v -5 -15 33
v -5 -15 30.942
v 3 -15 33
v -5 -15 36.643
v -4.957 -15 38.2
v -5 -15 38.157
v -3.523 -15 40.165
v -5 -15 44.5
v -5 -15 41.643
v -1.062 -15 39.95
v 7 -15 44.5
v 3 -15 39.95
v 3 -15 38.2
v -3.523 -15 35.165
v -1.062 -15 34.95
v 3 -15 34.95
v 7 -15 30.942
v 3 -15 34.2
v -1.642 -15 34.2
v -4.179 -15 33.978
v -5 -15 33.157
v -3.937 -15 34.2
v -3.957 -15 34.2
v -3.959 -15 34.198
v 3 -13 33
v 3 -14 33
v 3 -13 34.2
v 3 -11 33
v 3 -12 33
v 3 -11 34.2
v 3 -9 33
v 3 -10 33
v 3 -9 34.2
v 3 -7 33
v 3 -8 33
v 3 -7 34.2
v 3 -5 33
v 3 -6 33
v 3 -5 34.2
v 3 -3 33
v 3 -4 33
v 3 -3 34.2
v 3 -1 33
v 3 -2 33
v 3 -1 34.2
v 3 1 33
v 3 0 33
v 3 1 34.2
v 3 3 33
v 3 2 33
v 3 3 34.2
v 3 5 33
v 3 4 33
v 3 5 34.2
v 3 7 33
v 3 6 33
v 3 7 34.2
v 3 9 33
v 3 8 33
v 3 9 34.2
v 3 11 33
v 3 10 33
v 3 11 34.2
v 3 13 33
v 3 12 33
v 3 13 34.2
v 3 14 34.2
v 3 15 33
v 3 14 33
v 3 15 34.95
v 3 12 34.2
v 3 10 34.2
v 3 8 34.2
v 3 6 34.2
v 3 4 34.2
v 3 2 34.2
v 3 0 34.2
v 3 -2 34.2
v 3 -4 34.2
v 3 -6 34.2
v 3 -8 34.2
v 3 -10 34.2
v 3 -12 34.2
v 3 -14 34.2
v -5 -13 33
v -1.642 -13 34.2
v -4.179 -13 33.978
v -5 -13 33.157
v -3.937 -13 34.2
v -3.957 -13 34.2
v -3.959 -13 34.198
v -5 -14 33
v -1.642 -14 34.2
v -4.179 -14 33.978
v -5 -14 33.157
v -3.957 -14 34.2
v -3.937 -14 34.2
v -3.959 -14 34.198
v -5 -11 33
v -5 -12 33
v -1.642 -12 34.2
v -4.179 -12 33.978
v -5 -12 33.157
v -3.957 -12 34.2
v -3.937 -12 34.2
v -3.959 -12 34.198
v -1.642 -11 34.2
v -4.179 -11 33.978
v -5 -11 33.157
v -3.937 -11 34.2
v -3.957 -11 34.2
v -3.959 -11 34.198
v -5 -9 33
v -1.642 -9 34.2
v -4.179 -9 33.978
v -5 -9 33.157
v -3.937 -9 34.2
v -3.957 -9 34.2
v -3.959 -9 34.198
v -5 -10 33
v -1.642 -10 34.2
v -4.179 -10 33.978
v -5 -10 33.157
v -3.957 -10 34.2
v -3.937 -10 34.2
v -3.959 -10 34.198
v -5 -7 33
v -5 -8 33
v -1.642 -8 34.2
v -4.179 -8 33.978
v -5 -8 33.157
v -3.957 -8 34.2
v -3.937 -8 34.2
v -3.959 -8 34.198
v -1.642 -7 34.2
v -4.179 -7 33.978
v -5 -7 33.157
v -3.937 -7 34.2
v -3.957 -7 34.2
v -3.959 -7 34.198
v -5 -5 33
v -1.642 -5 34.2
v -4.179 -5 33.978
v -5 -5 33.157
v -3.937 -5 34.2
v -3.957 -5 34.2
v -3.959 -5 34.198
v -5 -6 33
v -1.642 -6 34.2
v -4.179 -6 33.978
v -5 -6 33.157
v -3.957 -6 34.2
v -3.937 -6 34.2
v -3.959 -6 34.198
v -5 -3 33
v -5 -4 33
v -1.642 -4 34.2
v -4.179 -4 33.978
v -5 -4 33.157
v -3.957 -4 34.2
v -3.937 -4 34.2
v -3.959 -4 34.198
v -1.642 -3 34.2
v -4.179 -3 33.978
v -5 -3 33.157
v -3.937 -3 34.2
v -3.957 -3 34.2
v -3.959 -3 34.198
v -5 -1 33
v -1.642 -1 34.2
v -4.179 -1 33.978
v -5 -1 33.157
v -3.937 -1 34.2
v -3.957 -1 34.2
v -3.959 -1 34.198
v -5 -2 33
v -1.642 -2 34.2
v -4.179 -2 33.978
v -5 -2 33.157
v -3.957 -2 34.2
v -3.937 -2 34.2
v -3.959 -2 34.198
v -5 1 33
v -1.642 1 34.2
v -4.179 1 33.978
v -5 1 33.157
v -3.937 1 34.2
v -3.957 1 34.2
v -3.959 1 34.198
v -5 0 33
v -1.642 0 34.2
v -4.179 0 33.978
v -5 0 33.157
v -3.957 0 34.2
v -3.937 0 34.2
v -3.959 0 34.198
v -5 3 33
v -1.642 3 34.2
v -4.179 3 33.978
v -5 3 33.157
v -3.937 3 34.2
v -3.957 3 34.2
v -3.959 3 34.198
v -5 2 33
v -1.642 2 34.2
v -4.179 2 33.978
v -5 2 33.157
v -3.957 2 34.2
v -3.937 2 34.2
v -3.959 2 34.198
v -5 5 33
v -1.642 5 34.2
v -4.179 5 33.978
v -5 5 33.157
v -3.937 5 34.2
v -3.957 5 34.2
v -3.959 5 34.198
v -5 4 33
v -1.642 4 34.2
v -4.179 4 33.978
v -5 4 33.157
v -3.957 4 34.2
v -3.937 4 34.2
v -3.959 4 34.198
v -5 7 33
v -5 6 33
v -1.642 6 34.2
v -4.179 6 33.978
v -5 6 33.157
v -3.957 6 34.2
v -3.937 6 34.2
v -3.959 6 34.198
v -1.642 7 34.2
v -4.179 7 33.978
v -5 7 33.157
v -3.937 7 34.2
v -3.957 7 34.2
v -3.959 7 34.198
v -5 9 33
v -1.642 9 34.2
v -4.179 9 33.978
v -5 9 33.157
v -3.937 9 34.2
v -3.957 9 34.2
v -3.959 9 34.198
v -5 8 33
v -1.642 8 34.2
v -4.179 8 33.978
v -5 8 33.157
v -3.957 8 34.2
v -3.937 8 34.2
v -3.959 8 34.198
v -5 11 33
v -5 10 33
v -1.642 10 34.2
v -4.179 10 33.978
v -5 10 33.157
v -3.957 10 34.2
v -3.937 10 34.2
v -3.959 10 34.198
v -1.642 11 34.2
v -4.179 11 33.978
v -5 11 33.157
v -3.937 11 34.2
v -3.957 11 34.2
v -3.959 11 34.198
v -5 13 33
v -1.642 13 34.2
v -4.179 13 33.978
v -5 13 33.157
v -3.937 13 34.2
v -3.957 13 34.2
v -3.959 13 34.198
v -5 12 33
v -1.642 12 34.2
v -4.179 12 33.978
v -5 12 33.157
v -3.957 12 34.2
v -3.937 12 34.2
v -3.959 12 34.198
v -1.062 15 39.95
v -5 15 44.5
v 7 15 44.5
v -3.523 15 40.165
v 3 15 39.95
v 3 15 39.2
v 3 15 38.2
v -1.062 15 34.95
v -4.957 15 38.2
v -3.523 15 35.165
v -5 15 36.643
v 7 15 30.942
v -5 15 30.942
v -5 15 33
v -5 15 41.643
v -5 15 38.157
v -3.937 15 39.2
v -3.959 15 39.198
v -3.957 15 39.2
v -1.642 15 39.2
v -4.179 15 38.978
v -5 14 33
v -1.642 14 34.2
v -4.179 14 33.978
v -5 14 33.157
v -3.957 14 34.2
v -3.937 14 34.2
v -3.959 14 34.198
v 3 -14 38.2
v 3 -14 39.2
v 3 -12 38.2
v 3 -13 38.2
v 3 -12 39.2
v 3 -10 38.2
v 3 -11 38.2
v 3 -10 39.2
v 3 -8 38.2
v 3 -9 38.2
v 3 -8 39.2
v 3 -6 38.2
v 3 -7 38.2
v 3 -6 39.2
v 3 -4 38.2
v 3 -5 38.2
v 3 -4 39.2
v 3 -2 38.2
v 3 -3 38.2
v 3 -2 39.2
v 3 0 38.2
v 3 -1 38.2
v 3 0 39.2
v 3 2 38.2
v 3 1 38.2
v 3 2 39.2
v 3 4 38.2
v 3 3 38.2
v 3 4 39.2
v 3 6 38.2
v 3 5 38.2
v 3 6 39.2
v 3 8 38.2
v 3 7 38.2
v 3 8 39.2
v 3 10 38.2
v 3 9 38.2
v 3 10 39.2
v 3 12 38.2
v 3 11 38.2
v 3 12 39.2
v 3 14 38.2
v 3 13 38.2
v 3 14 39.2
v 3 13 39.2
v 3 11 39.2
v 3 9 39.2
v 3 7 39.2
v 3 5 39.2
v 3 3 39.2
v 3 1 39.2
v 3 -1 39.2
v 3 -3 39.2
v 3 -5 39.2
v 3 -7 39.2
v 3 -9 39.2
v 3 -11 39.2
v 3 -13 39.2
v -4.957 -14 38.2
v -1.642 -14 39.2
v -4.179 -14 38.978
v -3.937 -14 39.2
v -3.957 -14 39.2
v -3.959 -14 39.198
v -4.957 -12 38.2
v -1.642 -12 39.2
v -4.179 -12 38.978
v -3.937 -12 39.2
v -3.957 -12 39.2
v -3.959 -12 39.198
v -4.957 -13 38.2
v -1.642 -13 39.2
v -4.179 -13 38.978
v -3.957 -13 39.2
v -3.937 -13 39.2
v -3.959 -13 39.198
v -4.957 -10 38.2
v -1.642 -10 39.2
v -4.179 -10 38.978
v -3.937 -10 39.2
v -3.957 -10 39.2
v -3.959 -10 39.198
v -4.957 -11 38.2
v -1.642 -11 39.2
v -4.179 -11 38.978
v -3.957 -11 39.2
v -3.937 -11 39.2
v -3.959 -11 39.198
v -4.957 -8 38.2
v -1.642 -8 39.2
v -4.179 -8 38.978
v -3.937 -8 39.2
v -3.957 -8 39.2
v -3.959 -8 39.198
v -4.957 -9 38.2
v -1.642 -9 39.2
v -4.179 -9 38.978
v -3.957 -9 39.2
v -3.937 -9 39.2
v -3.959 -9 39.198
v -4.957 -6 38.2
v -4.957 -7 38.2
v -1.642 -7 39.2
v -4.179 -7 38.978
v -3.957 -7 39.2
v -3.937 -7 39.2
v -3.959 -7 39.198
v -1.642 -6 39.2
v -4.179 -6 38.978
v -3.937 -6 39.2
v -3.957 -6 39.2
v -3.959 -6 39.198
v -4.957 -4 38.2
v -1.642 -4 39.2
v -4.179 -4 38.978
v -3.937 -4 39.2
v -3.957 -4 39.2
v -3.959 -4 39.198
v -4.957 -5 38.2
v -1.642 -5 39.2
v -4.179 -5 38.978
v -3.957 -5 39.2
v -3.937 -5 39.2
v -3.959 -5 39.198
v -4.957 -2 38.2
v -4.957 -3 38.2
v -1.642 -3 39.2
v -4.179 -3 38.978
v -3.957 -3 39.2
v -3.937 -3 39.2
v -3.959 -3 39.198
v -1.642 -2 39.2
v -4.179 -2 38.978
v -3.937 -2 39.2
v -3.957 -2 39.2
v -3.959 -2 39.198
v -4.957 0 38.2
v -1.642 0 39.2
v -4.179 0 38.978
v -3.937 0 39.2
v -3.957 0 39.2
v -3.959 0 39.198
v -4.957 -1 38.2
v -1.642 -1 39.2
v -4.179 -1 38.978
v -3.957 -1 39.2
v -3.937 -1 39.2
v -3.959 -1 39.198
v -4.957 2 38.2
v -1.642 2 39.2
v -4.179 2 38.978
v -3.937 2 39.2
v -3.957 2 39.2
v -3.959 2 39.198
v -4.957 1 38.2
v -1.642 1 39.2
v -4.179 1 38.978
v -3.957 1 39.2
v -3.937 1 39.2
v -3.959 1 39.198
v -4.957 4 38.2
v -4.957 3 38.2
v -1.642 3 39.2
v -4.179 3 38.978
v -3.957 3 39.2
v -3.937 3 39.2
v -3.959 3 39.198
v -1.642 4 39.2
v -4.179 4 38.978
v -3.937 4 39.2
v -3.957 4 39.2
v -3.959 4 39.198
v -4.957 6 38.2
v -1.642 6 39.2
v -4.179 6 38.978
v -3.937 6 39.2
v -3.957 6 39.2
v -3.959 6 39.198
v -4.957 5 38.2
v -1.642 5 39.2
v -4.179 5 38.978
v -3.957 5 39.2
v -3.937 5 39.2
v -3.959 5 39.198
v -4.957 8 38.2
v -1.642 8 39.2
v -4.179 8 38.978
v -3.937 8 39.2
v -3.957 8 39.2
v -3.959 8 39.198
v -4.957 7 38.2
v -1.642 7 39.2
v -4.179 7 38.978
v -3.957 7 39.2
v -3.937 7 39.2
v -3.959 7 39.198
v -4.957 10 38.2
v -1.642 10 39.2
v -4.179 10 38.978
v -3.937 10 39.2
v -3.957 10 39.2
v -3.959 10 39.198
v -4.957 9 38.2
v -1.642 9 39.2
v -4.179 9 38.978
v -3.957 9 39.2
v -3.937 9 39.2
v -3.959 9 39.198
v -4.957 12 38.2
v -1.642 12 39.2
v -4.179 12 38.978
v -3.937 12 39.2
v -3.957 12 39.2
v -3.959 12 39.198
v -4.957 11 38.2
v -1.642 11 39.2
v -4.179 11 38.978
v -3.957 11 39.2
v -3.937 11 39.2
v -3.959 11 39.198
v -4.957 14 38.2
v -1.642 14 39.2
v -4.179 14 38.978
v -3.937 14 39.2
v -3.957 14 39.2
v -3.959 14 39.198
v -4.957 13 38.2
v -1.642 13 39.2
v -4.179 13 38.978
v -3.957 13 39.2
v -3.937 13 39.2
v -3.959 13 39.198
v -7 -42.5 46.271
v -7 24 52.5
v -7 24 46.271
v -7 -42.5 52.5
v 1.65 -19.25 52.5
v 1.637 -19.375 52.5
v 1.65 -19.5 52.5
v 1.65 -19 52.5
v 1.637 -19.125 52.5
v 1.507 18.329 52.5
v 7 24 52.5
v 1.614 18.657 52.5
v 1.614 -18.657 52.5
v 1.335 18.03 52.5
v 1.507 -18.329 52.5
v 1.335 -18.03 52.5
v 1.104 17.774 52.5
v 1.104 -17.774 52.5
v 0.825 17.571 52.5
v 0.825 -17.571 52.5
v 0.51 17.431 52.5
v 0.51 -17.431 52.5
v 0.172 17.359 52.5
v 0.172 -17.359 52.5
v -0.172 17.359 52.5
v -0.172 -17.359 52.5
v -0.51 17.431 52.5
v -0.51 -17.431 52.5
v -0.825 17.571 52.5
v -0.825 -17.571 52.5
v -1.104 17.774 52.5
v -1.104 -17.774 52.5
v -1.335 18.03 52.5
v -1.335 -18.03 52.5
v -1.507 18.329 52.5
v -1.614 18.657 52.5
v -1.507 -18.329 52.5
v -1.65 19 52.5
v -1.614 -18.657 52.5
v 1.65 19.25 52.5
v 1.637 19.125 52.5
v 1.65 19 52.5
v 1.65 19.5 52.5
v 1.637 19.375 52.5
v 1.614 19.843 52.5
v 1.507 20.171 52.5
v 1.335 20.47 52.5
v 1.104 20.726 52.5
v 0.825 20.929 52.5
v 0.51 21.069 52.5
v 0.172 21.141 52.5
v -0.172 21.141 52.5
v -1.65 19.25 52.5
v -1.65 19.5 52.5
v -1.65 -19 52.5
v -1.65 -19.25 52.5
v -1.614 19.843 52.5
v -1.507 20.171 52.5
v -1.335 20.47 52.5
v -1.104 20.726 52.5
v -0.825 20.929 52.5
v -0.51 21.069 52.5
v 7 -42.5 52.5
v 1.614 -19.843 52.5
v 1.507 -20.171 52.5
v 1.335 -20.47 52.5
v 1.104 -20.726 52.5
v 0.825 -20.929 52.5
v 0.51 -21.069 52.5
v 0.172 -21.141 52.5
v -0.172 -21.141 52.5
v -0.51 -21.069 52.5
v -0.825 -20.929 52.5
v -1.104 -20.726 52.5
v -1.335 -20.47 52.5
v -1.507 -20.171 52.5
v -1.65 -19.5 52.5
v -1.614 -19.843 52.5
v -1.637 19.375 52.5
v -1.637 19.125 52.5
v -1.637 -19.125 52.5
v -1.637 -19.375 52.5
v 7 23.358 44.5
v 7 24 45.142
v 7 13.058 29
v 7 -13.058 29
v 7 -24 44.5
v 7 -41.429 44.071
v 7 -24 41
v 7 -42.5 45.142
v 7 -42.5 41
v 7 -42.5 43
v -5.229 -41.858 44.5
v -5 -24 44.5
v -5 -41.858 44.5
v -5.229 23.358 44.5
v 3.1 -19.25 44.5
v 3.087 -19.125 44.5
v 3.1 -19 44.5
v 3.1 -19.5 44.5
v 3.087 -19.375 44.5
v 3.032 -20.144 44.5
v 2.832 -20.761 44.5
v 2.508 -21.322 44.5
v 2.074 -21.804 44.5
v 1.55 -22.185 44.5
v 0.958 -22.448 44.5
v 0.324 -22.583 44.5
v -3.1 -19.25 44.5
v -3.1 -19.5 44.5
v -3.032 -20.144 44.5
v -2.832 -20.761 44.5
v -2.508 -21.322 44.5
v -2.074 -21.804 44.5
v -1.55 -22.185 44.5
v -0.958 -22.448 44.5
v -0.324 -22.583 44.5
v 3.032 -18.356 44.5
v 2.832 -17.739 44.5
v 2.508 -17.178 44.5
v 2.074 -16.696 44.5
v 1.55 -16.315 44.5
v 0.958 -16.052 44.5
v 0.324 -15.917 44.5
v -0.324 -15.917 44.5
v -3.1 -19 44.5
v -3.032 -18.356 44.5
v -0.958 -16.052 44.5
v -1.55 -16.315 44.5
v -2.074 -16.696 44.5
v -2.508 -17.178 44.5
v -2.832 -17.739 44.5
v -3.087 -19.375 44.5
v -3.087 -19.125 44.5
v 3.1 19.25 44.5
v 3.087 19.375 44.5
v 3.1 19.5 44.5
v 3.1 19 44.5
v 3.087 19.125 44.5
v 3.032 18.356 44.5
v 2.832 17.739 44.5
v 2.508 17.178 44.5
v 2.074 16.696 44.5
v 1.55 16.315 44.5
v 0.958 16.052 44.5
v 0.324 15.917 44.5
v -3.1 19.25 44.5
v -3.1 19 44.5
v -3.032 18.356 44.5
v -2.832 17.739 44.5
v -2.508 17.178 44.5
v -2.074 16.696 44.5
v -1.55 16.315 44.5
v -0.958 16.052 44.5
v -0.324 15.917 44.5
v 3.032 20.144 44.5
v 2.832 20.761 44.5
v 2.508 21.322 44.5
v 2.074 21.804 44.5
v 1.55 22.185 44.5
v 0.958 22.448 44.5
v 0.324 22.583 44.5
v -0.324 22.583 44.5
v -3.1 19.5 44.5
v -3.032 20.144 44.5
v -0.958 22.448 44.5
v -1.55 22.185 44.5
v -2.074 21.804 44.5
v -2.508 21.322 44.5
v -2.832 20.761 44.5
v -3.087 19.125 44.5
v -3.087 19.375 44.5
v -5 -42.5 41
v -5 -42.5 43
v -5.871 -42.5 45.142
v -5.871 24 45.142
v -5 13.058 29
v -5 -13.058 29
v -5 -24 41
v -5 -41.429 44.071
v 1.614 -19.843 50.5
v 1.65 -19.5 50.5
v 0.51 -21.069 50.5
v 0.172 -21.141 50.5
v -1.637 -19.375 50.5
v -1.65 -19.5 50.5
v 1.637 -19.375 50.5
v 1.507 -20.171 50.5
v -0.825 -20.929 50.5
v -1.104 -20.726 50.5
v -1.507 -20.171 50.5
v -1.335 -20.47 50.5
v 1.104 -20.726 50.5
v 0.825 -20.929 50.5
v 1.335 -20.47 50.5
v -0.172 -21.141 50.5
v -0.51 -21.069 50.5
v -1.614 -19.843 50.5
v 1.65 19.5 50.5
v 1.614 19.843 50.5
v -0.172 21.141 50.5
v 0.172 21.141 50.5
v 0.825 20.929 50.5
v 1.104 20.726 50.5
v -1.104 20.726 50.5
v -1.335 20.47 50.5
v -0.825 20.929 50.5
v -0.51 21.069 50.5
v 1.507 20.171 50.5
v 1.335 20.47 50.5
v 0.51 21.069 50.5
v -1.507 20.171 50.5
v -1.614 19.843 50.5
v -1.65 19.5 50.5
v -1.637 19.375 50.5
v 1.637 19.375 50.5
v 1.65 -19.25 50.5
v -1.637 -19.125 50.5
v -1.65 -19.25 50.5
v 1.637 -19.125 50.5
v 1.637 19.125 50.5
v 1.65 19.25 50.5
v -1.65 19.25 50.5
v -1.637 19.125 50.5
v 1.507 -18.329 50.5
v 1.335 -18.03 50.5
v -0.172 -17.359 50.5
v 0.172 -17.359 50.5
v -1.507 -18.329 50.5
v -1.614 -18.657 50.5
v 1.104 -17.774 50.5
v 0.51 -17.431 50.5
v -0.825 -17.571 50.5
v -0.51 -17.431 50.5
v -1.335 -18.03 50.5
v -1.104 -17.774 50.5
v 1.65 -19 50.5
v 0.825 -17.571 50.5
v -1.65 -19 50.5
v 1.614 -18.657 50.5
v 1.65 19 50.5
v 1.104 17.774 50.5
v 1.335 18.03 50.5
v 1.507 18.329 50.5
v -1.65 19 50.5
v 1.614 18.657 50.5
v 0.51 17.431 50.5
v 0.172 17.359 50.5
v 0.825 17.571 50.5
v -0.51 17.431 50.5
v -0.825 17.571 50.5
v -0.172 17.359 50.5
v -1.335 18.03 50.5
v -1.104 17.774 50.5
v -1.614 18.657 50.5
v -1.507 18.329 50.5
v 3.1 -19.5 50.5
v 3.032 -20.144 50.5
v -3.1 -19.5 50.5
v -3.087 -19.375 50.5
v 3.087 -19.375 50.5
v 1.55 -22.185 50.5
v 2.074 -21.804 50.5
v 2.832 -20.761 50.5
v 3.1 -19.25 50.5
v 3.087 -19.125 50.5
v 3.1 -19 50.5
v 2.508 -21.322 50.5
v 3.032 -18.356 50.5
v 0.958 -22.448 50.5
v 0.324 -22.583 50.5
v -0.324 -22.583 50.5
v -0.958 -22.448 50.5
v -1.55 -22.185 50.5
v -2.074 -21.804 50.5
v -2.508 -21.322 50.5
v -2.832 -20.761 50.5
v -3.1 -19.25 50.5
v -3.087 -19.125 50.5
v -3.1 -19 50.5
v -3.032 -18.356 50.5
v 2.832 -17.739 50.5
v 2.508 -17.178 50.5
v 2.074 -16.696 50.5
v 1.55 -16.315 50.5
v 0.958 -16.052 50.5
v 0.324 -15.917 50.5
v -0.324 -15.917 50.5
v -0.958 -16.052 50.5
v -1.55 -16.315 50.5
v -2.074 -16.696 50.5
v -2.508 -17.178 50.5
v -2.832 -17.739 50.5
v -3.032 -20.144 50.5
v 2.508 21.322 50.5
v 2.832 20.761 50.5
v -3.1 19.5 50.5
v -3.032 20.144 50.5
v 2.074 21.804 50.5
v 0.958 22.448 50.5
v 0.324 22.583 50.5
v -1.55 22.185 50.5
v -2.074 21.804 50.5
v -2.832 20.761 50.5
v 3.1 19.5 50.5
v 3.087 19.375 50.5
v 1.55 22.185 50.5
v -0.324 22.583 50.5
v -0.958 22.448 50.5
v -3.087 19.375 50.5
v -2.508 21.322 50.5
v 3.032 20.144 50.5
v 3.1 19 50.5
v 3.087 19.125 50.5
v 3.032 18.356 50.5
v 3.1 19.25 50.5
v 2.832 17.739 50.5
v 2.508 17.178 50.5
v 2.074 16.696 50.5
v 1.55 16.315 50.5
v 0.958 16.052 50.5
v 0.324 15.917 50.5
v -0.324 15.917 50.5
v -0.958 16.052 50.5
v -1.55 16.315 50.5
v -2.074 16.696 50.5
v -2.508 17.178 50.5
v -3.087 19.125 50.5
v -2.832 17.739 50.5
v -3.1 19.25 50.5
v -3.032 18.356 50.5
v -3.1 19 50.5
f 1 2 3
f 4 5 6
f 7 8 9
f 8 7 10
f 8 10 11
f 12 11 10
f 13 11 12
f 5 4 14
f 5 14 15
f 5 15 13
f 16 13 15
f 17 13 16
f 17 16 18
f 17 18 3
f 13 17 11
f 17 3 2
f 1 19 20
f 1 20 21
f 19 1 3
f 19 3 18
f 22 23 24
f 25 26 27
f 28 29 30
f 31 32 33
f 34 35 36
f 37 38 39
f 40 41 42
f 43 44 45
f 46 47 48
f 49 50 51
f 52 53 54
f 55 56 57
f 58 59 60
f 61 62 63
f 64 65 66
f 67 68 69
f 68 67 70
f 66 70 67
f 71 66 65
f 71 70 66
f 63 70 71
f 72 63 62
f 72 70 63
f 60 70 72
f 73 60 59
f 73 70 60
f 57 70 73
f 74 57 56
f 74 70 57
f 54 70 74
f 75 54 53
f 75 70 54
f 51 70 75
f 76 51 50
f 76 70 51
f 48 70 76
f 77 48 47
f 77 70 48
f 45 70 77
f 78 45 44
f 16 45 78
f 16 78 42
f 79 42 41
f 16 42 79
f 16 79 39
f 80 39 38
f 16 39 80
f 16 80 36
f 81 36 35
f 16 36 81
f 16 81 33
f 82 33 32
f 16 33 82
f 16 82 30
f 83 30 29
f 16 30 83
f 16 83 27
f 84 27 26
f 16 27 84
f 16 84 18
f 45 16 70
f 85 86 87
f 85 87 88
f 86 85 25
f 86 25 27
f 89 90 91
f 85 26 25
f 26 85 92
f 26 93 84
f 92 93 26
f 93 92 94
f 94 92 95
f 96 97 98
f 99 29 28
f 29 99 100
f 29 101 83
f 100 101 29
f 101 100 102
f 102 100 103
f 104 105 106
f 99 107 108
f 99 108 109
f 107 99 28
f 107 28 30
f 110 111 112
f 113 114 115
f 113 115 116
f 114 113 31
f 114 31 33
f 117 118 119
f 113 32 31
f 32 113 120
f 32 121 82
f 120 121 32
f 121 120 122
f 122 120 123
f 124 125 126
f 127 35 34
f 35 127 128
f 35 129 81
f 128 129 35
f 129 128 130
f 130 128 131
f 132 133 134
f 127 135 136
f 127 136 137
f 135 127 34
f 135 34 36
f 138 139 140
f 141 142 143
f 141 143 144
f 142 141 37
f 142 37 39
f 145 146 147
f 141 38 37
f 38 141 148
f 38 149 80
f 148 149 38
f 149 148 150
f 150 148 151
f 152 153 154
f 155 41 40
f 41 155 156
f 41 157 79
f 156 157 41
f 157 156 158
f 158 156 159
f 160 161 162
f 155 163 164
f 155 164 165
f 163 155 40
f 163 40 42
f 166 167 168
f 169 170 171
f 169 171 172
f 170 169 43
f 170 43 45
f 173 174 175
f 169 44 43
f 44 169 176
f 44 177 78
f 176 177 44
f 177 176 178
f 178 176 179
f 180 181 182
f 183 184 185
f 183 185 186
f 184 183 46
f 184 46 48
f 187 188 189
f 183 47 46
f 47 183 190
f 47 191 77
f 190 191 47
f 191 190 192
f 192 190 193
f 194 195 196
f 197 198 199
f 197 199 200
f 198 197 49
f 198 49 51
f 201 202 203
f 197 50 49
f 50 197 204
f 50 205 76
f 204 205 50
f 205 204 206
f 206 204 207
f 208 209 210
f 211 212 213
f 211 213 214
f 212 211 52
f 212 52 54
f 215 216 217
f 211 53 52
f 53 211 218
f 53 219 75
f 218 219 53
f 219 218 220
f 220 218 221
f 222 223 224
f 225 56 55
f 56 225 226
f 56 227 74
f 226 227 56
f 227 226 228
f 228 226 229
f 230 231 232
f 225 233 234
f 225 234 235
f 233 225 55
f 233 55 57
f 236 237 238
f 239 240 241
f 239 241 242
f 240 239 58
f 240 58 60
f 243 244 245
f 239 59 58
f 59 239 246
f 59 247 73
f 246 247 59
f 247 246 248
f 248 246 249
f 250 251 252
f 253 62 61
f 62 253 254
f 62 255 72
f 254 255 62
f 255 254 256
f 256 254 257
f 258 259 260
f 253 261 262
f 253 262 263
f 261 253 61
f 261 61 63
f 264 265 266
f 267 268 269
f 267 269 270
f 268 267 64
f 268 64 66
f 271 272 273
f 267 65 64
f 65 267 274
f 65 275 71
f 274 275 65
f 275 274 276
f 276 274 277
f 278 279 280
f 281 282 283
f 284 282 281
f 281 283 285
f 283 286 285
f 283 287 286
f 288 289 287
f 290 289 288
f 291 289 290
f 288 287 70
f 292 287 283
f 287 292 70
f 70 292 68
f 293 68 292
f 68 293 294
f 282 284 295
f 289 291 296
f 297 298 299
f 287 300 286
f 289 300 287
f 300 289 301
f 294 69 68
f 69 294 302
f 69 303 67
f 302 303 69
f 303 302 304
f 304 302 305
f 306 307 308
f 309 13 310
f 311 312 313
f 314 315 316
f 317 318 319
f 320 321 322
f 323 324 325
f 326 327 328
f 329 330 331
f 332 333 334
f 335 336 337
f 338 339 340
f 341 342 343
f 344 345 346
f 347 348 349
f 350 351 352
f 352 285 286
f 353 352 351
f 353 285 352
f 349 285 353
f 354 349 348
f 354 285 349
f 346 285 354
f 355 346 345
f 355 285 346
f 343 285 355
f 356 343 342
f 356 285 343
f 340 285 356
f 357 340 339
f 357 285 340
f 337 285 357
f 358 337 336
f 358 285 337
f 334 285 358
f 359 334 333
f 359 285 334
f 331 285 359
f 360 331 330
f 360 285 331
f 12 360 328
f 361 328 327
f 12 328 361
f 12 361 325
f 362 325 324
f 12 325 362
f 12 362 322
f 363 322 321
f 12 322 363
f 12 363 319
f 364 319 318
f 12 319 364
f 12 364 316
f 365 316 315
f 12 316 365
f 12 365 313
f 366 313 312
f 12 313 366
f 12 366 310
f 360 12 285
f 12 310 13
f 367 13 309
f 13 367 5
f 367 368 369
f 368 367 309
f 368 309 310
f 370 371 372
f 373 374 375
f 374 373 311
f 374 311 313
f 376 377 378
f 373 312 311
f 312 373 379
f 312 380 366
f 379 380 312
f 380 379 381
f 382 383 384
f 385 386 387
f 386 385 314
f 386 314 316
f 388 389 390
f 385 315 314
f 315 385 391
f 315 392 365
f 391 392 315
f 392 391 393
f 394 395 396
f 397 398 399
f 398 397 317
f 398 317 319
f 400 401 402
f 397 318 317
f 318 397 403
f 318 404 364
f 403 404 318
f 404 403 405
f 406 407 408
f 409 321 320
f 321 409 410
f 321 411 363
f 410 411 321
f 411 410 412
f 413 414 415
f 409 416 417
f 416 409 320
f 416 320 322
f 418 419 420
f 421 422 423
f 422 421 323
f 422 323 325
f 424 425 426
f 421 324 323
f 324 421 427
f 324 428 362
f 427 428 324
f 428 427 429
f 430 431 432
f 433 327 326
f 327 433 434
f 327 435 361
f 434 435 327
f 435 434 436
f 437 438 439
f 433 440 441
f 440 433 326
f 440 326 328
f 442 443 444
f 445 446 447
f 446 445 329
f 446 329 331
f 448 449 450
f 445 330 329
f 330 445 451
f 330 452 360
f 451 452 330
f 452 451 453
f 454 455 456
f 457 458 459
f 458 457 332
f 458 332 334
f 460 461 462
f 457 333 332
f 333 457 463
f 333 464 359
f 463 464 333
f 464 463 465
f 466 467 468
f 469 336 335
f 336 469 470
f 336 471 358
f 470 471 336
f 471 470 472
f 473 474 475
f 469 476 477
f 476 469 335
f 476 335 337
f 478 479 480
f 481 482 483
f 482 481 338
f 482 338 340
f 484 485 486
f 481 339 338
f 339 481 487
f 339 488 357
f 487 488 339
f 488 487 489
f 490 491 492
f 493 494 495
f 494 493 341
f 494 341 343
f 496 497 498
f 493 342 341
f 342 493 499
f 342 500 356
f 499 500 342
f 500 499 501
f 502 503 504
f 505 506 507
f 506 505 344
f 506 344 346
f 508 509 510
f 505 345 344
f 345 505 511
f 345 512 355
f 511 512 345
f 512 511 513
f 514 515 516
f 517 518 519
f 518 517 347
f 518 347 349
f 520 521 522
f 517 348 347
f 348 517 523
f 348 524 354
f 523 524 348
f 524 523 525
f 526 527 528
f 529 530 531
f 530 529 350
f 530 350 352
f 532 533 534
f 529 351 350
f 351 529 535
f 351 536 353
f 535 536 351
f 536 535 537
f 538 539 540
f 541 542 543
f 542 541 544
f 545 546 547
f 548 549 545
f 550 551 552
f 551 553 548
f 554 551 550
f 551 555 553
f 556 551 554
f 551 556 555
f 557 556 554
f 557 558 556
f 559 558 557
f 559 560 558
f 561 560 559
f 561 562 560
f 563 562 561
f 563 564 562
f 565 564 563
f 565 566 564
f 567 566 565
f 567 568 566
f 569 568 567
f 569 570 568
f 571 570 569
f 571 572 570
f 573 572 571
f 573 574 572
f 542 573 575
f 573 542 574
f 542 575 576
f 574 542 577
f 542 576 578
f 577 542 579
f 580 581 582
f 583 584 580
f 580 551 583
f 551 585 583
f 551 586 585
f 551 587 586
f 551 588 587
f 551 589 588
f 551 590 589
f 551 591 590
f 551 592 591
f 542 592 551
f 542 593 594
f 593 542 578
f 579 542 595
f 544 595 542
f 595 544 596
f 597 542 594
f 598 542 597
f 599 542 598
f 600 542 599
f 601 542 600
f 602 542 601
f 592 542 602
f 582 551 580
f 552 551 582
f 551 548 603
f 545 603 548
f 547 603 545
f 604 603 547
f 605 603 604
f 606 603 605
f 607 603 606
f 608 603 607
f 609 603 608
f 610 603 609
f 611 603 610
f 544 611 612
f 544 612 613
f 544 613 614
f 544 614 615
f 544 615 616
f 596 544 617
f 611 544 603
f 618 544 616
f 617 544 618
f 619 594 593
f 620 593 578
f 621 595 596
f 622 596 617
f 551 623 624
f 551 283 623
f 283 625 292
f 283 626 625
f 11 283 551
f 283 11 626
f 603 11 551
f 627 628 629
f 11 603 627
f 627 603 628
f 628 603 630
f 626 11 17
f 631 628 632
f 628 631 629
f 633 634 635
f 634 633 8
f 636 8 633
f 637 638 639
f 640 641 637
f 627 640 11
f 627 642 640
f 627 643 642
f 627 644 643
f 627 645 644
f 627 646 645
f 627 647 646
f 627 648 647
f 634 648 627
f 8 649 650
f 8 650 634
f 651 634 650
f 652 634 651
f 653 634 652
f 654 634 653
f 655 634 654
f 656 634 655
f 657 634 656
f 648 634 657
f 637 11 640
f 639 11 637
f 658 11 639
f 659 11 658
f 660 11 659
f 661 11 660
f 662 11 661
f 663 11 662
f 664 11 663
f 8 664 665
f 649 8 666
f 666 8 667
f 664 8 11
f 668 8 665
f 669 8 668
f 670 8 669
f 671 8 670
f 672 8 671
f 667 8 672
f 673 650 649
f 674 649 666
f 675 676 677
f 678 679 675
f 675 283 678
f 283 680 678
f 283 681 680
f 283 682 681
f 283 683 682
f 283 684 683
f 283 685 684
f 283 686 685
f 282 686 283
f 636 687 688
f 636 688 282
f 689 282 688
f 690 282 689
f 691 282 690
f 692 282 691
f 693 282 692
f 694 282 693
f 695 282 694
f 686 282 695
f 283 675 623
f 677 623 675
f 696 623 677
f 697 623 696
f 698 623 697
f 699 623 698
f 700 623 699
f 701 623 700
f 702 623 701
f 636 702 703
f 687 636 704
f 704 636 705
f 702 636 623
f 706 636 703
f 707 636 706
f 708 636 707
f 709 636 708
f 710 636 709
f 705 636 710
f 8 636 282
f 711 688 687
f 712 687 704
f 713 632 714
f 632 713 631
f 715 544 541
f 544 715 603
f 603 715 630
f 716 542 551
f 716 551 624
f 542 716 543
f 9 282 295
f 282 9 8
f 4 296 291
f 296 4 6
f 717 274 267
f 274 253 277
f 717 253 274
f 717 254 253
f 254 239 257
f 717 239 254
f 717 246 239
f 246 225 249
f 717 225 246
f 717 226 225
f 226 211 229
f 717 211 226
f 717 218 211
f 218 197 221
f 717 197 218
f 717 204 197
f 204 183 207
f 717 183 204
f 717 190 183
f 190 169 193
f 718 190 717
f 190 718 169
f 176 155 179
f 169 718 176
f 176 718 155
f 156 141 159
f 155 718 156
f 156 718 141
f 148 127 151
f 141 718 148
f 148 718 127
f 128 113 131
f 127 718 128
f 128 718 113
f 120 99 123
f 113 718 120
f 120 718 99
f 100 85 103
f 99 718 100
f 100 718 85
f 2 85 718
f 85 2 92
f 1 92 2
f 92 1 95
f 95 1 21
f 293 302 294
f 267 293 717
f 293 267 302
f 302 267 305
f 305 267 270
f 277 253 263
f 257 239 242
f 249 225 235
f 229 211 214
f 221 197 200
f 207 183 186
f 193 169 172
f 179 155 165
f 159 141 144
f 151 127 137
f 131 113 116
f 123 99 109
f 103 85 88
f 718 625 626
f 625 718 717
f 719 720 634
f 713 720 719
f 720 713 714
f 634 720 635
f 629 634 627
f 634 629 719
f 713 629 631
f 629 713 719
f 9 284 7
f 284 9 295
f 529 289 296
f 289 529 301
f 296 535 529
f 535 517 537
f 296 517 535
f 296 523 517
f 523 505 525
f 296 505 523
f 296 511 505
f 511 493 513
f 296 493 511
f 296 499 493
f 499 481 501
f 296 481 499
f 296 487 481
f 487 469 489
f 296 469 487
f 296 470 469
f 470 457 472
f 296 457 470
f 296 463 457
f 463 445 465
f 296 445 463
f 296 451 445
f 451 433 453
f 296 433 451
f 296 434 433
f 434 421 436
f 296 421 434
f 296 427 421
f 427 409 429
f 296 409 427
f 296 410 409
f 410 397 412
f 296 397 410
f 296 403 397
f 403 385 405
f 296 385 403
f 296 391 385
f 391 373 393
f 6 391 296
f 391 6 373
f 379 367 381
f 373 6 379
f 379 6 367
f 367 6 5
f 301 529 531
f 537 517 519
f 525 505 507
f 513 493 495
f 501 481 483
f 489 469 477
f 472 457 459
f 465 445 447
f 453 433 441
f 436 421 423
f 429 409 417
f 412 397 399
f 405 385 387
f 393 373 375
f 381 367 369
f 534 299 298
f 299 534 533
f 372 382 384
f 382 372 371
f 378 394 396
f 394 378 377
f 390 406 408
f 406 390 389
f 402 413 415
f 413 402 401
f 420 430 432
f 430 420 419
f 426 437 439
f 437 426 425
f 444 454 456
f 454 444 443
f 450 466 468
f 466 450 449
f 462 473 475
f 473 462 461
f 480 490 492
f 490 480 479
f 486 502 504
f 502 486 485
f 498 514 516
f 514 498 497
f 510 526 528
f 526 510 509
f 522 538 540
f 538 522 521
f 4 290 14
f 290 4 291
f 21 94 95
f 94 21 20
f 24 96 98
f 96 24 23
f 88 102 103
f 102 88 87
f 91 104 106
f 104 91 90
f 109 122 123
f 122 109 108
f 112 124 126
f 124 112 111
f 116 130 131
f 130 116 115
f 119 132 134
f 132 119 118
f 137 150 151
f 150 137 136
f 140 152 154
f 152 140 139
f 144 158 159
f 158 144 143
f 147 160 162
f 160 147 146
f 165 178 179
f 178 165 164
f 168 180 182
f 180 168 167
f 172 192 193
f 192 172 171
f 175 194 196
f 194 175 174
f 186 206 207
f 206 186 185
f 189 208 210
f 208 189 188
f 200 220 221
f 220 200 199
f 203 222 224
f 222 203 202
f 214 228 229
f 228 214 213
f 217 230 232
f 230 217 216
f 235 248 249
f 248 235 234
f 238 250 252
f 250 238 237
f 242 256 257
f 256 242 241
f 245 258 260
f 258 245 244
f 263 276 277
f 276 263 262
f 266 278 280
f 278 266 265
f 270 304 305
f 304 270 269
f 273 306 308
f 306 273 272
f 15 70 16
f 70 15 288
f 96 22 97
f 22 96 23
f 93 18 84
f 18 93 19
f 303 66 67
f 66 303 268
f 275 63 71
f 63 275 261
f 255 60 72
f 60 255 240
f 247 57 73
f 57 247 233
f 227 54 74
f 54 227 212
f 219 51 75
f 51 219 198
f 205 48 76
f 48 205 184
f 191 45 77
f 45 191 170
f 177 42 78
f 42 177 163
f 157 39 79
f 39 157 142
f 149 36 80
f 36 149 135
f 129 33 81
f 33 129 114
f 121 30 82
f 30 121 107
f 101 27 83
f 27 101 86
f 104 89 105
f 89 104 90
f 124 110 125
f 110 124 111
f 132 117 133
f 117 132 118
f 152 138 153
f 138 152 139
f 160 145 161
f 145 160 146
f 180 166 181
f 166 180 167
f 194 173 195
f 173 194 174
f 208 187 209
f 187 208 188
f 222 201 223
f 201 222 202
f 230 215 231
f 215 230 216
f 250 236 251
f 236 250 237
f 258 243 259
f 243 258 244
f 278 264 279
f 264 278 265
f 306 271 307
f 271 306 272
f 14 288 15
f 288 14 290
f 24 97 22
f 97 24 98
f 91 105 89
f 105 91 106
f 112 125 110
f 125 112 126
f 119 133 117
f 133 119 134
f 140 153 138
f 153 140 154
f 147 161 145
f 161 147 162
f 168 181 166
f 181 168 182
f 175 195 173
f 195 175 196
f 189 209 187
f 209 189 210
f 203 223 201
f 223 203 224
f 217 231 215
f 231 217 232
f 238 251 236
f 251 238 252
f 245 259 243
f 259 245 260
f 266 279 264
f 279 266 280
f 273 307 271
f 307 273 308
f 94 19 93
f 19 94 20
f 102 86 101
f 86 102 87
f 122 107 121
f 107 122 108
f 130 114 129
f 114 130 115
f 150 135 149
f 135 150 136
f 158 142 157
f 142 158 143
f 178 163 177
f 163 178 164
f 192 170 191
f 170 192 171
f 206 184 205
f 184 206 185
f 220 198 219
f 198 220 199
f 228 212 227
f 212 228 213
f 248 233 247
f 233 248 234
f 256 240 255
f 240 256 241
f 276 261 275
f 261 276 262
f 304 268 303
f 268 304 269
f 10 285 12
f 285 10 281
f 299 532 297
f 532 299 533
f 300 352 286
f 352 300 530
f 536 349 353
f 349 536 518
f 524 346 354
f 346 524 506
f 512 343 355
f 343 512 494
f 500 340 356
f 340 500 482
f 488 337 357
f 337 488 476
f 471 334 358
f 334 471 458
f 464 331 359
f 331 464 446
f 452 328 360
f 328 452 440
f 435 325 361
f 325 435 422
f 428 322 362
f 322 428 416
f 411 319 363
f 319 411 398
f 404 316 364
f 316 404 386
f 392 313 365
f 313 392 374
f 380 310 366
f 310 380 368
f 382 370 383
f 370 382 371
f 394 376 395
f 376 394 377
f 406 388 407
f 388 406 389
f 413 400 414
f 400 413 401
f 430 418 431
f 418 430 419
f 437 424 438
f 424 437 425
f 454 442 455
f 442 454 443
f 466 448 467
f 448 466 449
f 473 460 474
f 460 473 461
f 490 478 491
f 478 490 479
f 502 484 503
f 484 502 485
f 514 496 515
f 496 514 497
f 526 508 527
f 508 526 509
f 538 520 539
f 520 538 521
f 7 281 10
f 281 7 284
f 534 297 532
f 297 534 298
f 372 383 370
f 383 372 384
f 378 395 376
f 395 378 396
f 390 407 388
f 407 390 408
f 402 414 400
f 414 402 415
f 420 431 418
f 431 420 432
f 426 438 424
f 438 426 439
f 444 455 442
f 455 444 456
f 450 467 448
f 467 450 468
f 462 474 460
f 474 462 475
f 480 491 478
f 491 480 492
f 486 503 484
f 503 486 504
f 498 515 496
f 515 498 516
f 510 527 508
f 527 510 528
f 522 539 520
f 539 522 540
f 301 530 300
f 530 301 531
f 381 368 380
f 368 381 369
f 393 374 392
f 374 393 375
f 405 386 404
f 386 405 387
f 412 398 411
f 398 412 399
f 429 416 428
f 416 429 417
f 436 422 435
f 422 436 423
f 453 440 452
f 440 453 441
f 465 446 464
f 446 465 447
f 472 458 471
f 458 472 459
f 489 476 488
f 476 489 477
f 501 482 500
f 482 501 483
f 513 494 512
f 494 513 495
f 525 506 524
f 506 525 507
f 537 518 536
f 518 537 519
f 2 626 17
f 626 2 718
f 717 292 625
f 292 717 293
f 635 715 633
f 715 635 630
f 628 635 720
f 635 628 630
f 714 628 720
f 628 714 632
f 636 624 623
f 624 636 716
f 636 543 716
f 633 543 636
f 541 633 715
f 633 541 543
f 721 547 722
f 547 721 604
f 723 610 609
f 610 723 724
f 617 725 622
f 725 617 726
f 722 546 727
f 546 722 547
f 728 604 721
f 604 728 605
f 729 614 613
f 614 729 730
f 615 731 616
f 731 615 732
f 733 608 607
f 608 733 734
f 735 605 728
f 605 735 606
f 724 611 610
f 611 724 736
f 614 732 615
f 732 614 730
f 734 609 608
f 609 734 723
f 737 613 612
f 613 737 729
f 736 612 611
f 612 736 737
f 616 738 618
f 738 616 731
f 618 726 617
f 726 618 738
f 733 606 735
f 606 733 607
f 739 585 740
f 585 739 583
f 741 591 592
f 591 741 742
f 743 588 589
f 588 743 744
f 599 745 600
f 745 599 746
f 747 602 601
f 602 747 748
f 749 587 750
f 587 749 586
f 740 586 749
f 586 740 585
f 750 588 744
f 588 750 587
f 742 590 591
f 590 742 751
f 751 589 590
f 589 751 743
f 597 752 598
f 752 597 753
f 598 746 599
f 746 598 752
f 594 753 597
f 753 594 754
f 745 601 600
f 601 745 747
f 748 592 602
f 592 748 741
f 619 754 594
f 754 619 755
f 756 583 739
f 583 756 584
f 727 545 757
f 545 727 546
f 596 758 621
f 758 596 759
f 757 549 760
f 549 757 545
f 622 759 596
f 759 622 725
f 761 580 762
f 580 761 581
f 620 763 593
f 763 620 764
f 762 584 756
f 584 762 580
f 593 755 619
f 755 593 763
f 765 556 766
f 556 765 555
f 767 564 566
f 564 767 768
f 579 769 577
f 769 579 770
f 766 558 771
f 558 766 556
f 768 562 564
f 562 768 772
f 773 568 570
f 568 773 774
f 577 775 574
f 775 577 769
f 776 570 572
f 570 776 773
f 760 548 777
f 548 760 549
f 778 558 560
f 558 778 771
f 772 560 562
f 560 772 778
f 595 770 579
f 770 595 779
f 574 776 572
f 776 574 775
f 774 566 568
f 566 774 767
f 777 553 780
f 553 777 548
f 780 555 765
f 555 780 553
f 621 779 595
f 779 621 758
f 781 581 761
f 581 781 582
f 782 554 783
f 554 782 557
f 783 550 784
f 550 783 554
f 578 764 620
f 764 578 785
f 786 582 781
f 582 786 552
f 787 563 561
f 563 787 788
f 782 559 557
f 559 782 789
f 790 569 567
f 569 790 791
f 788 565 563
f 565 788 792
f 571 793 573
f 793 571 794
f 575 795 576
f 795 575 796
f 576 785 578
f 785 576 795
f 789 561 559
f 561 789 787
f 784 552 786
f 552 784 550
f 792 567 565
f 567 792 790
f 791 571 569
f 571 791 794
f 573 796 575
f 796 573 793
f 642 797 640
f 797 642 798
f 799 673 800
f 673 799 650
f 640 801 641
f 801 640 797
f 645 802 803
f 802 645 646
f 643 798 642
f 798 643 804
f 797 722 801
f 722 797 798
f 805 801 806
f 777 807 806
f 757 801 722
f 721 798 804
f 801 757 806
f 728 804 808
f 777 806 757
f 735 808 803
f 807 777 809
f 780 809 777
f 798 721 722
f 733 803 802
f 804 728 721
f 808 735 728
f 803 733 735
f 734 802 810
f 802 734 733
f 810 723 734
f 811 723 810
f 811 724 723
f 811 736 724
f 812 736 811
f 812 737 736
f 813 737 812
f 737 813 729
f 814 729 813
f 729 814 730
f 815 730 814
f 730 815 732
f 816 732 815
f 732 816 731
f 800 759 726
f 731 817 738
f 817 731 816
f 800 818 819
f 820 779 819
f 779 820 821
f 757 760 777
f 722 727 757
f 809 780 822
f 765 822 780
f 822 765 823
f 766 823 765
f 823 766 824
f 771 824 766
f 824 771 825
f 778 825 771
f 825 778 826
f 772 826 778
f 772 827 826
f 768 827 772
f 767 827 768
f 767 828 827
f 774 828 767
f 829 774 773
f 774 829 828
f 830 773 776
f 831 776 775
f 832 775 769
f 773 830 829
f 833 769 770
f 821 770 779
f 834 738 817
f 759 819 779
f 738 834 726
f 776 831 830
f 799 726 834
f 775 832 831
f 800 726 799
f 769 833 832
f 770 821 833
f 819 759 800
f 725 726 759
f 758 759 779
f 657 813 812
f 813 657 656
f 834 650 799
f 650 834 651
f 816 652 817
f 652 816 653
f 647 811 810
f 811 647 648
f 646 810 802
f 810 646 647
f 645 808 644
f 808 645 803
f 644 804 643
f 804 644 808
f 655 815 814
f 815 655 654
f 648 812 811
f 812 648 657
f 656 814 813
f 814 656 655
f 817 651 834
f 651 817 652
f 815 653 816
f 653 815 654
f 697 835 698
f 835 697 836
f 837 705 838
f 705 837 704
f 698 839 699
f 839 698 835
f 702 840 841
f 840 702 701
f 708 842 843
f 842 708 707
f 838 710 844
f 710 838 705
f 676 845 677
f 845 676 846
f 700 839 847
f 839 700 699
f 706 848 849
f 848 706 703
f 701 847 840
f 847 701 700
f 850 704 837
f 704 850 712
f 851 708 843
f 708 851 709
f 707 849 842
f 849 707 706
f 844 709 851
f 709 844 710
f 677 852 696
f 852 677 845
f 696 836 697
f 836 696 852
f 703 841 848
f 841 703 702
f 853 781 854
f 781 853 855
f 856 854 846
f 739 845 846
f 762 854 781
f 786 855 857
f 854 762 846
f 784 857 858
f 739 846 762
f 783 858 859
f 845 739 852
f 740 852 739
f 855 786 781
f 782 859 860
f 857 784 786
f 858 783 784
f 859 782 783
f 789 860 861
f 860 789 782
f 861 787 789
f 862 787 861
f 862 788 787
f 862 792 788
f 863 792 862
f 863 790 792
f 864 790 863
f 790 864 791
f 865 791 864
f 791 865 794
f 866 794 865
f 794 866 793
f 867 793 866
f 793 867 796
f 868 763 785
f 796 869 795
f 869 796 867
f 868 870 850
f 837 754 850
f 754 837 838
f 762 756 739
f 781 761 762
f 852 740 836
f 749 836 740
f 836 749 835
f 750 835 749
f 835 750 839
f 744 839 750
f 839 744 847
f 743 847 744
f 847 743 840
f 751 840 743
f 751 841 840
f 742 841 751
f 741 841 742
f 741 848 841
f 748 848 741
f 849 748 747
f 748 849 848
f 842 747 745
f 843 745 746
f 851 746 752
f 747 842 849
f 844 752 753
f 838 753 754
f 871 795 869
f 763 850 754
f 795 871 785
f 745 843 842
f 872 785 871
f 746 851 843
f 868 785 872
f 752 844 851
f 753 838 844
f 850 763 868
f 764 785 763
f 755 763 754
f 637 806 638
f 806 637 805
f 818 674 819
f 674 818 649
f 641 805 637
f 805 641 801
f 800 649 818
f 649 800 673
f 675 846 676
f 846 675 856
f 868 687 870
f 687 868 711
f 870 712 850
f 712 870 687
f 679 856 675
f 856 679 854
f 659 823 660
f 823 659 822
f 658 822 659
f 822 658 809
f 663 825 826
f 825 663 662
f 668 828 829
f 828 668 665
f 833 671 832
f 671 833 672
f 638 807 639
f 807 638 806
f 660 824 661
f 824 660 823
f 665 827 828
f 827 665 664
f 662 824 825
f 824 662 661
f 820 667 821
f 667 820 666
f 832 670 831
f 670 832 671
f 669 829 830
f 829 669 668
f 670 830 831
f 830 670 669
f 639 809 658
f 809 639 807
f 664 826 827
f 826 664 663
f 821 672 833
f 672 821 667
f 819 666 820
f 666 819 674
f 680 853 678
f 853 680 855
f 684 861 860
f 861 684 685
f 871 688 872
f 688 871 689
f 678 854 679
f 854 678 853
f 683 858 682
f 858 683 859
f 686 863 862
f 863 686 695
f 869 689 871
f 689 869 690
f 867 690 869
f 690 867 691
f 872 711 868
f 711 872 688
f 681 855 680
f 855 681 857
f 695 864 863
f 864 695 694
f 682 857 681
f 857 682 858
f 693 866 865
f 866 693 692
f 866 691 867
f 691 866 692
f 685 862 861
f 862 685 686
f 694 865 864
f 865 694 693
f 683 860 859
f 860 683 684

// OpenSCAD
// PRUSA iteration4
// Y belt holder
// GNU GPL v3
// Josef Průša <iam@josefprusa.cz> and contributors
// http://www.reprap.org/wiki/Prusa_Mendel
// http://prusamendel.org

// Measured distance between my limit swtich mount and the carriage when the bearing "bottomed out" against the back.
y_endstop_compensation = 18.5;

module y_belt_holder()
{

    difference()
    {
        // base block
        union()
        {
            translate([-7,-24 - y_endstop_compensation,44.5]) cube([14,48 + y_endstop_compensation,8]);
            translate([-5,-15,29]) cube([12,30,17]);
            if (y_endstop_compensation > 0) {
                translate([-5, -24 - y_endstop_compensation, 41]) cube([12, y_endstop_compensation, 4.5]);
            }
        }

        // belt entry 
        translate([-7.5,-16,39.9]) rotate([0,45,0]) cube([3,32,3]);
        translate([-7.5,-16,34.9]) rotate([0,45,0]) cube([3,32,3]);
        
        // lower belt slot
        translate([-8.5,-16,34.2]) cube([11.5,32,0.75]);
        translate([-8.5,-16,35.4]) rotate([0,5,0]) cube([11.5,32,0.2]);
        translate([-8.5,-16,33.6]) rotate([0,-5,0]) cube([11.5,32,0.2]);
        for (_step =[-16:2:16])
        {
            translate([-8.5,_step,33]) cube([11.5,1,1.5]);
        }
        
        // upper belt slot
        translate([-8.5,-16,39.2]) cube([11.5,32,0.75]);
        translate([-8.5,-16,40.4]) rotate([0,5,0]) cube([11.5,32,0.2]);
        translate([-8.5,-16,38.6]) rotate([0,-5,0]) cube([11.5,32,0.2]);
        for (_step =[-17:2:16])
        {
            translate([-8.5,_step,38.2]) cube([11.5,1,1.5]);
        }
        
        // nice edges
        translate([-8,-20,21.8]) rotate([45,0,0]) cube([16,10,10]);
        translate([-8,20,21.8]) rotate([45,0,0]) cube([16,10,10]);

        translate([-8,-30 - y_endstop_compensation,37]) rotate([45,0,0]) cube([16,10,10]);
       translate([-8,30,37]) rotate([45,0,0]) cube([16,10,10]);
        translate([-12.2,-30 - y_endstop_compensation,44.4]) rotate([0,45,0]) cube([5,60 + y_endstop_compensation,5]);
        
        // mounting screw holes
        translate([0,-19.50,40]) cylinder( h=30, r=1.65, $fn=30 );
        translate([0,19.50,40]) cylinder( h=30, r=1.65, $fn=30 );
        translate([0,-19.25,40]) cylinder( h=30, r=1.65, $fn=30 );
        translate([0,19.25,40]) cylinder( h=30, r=1.65, $fn=30 );
        translate([0,-19.0,40]) cylinder( h=30, r=1.65, $fn=30 );
        translate([0,19.0,40]) cylinder( h=30, r=1.65, $fn=30 );
        
        translate([0,-19.5,43.5]) cylinder( h=7, r=3.1, $fn=30 );
        translate([0,19.5,43.5]) cylinder( h=7, r=3.1, $fn=30 );
        translate([0,-19.25,43.5]) cylinder( h=7, r=3.1, $fn=30 );
        translate([0,19.25,43.5]) cylinder( h=7, r=3.1, $fn=30 );
        translate([0,-19.0,43.5]) cylinder( h=7, r=3.1, $fn=30 );
        translate([0,19.0,43.5]) cylinder( h=7, r=3.1, $fn=30 );
        
    
    }
 

}

difference()
{
    //translate([-40,0,7]) rotate([0,90,0]) 
    y_belt_holder();
    //version   
    translate([8.5,3.5,0.5]) rotate([0,180,90]) linear_extrude(height = 0.6) 
    { text("R1",font = "helvetica:style=Bold", size=4, center=true); }
}
    
